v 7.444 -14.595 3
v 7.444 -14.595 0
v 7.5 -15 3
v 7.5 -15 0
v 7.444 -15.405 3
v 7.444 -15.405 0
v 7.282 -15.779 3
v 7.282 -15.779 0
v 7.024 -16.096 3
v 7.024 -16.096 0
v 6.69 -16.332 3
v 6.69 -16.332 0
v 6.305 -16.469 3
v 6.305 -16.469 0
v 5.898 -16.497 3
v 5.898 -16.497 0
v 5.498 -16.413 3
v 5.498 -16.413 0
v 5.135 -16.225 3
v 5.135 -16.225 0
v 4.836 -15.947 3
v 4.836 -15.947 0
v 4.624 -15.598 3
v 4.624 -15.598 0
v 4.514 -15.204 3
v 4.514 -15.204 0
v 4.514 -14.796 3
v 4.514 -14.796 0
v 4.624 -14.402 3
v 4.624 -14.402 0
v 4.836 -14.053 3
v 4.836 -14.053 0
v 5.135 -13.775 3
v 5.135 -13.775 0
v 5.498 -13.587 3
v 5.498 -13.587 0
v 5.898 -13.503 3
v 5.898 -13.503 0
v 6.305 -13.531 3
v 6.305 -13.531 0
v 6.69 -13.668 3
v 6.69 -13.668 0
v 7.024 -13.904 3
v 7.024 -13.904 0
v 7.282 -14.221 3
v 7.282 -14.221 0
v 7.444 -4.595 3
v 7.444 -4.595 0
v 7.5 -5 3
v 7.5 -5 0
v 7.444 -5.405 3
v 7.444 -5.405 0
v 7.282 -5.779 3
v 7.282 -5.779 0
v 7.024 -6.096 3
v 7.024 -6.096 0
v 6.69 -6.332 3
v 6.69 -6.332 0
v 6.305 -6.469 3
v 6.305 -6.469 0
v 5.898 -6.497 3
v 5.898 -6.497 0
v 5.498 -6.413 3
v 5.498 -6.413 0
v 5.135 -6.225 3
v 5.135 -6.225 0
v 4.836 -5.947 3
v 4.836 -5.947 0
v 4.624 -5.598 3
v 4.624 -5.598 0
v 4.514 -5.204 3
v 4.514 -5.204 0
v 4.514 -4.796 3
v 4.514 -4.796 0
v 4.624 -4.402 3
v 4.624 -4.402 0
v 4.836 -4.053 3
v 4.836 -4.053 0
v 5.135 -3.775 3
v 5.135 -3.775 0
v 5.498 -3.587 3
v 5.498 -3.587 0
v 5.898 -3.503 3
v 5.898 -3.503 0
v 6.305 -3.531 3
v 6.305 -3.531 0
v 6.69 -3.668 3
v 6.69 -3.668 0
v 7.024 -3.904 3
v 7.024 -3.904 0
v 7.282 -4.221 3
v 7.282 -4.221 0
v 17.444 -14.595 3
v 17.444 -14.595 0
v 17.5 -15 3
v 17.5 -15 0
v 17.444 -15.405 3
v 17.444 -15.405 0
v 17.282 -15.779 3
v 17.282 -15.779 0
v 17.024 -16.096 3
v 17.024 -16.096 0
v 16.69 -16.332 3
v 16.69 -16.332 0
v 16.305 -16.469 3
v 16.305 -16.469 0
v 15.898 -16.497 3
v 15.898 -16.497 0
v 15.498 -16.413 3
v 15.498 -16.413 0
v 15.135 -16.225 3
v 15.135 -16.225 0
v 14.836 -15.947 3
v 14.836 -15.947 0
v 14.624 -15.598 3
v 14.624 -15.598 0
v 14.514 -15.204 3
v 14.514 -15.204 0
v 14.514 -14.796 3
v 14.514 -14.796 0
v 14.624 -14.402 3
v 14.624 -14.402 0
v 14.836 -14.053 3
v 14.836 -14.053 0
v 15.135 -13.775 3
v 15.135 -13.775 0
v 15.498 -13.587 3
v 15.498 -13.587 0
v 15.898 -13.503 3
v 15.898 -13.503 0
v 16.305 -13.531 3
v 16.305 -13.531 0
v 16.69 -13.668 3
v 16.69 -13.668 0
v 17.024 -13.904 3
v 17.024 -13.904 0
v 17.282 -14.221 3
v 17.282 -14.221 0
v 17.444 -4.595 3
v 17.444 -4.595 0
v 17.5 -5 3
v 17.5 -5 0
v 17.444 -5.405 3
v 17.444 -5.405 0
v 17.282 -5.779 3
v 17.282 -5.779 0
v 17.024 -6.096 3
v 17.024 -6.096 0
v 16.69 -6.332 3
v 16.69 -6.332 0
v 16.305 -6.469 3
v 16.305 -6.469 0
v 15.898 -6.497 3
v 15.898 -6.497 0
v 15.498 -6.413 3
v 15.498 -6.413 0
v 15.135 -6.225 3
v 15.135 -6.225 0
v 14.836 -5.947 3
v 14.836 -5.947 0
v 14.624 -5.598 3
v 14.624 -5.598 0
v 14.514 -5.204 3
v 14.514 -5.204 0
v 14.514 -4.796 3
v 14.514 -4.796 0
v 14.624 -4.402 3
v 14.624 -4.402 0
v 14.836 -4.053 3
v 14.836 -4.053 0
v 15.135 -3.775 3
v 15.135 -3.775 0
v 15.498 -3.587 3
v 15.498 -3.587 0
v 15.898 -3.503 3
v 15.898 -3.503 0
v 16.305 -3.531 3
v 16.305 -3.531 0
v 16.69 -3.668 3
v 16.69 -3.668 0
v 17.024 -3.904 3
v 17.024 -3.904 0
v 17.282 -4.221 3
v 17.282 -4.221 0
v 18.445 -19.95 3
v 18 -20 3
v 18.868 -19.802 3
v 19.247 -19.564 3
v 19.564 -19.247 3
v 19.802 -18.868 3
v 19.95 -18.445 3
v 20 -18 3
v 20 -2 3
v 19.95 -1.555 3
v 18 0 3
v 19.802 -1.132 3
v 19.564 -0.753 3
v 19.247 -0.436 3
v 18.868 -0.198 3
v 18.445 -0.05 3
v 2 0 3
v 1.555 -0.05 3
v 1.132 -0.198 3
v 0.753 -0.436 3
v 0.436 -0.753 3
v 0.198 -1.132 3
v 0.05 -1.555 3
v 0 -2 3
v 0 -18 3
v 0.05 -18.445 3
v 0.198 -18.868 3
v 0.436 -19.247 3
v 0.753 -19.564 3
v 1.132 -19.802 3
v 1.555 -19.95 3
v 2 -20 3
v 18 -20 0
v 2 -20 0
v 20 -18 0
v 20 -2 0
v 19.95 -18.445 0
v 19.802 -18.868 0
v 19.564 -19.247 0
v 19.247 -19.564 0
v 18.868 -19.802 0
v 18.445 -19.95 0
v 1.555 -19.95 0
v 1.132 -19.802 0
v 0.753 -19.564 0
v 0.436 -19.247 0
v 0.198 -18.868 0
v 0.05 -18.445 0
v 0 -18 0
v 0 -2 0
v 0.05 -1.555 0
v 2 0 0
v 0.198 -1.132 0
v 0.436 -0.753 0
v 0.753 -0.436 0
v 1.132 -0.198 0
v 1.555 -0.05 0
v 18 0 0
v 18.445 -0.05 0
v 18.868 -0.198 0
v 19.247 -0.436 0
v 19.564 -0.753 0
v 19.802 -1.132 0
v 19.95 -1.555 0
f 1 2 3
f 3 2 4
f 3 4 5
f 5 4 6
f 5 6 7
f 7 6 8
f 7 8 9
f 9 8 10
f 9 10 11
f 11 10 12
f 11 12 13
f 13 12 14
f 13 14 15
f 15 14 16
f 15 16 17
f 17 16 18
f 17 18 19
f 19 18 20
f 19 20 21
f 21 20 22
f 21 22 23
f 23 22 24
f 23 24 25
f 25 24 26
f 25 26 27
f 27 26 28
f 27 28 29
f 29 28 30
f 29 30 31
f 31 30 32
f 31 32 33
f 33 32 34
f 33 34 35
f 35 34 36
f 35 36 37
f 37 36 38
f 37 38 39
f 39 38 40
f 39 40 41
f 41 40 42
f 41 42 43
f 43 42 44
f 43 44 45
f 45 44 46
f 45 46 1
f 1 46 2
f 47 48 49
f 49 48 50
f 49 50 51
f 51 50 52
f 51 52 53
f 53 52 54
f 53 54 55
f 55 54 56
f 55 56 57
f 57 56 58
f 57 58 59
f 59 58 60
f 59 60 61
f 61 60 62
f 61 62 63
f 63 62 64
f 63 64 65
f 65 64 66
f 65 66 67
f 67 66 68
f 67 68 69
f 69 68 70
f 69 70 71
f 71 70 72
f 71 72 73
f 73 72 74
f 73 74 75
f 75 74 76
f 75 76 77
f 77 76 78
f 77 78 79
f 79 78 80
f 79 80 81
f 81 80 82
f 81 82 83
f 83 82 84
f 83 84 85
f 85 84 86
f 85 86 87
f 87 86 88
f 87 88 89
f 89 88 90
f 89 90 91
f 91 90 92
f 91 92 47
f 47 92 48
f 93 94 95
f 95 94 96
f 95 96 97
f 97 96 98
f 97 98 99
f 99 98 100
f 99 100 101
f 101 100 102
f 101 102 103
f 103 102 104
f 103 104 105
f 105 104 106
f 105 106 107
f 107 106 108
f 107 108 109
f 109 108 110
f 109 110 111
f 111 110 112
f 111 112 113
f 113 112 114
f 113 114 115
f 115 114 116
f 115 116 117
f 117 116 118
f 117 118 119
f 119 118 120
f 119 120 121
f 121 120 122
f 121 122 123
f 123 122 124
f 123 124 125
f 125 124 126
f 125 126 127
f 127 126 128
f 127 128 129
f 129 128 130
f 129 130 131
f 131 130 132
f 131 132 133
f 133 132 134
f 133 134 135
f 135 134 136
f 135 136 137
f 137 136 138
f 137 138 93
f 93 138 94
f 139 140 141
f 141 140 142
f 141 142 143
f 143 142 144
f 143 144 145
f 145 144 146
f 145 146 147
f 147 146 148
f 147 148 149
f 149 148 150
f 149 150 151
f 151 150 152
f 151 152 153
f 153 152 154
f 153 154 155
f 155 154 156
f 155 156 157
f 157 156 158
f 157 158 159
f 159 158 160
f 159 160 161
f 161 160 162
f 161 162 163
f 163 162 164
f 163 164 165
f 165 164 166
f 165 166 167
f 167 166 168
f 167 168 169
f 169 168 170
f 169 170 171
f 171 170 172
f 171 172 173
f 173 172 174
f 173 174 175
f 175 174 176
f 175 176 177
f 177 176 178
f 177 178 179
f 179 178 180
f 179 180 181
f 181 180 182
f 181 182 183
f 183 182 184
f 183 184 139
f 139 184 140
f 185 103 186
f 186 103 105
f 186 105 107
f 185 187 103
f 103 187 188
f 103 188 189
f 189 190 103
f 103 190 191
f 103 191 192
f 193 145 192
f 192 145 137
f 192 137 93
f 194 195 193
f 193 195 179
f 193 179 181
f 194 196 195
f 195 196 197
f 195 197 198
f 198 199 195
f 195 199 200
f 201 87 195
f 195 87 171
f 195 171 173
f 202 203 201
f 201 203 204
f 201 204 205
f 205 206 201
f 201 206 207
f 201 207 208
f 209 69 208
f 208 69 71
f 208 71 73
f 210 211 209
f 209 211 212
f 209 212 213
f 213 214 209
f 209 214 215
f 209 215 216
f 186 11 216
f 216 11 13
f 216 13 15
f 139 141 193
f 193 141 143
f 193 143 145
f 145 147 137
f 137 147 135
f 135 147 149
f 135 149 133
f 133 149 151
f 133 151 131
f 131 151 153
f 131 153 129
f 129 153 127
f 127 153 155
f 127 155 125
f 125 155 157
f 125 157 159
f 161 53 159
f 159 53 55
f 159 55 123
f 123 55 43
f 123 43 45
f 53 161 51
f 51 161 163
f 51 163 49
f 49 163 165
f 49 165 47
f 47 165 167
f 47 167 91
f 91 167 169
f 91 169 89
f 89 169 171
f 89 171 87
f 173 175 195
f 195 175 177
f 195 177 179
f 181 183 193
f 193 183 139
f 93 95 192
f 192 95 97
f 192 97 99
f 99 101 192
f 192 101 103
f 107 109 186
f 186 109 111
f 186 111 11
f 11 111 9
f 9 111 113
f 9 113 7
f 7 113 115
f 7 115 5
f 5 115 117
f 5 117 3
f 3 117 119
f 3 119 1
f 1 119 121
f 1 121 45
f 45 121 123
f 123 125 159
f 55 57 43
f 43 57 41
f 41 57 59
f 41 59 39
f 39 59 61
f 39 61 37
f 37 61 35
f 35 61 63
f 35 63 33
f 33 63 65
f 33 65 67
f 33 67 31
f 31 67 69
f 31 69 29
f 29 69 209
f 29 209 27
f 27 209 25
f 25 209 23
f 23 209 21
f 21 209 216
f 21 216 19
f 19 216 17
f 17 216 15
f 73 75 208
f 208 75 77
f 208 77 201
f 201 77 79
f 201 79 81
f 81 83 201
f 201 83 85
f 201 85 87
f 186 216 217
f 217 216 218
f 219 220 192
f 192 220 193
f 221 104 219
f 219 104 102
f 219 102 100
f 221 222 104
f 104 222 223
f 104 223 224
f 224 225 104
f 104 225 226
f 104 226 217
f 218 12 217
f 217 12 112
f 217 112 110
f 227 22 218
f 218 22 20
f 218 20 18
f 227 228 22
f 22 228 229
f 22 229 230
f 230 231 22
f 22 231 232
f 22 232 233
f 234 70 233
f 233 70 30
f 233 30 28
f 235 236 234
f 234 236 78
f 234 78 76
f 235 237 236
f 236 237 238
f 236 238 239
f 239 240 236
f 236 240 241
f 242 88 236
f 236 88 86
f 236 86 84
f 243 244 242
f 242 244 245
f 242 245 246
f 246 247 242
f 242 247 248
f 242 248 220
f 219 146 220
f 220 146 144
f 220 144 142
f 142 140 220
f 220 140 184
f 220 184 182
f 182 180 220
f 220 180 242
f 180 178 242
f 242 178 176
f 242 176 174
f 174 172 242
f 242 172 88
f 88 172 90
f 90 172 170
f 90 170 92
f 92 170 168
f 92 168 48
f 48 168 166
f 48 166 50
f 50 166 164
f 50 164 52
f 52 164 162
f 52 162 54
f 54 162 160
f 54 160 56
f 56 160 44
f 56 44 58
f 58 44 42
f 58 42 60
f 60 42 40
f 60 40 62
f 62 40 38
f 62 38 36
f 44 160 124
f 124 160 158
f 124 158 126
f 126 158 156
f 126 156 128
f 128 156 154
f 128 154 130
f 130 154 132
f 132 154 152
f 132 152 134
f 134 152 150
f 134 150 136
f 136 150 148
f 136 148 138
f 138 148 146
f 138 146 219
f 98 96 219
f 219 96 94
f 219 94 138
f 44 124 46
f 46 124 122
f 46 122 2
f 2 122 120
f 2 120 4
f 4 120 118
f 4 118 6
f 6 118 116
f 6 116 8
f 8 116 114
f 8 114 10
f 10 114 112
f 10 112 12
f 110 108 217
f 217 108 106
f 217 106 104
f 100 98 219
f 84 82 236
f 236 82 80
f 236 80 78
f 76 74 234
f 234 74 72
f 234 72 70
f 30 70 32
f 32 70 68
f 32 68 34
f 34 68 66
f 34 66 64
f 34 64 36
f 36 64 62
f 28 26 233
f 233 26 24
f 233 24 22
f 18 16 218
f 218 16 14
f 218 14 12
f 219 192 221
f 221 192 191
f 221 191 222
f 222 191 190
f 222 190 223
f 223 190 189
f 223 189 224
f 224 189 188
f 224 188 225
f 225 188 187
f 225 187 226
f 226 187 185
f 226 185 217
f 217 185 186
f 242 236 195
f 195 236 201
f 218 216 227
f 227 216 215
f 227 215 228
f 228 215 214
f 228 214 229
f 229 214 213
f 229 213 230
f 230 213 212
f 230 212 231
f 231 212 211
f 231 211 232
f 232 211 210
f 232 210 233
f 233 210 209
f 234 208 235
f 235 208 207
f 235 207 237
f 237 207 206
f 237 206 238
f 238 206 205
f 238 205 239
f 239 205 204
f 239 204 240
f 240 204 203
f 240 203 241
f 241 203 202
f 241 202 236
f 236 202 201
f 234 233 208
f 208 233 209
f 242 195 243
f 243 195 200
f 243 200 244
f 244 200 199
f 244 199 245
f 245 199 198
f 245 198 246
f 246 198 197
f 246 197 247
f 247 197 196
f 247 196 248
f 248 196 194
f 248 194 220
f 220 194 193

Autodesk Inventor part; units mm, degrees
ref_plane "YZ Plane" through (0, 0, 0) normal (1, 0, 0) x (0, 1, 0)
ref_plane "XZ Plane" through (0, 0, 0) normal (0, 1, 0) x (-1, 0, 0)
ref_plane "XY Plane" through (0, 0, 0) normal (0, 0, 1) x (1, 0, 0)
ref_plane "Plano de trabajo5" through (0, 0, 0) normal (0, 0, 1) x (1, 0, 0)
sketch "Boceto2" plane through (0, 0, 0) normal (0, 0, 1) x (1, 0, 0)
  line L0 (0, 0) -> (20, 0)
  line L1 (20, 0) -> (20, -20)
  line L2 (20, -20) -> (0, -20)
  line L3 (0, -20) -> (0, 0)
  line L4 (0, -20) -> (6, -20)
  line L5 (6, -20) -> (6, -15)
  line L6 (6, -15) -> (6, -5)
  circle A0 centre (6, -15) radius 1.5
  circle A1 centre (6, -5) radius 1.5
  line L7 (20, -20) -> (20, -15)
  line L8 (20, -15) -> (16, -15)
  line L9 (16, -15) -> (16, -5)
  circle A2 centre (16, -15) radius 1.5
  circle A3 centre (16, -5) radius 1.5
  dimension "d17" = 20
  dimension "d18" = 20
  dimension "d19" = 6
  dimension "d20" = 5
  dimension "d21" = 10
  dimension "d22" = 3
  dimension "d23" = 3
  dimension "d24" = 5
  dimension "d25" = 4
  dimension "d26" = 10
  dimension "d27" = 3
  dimension "d28" = 3
extrude "Extrusión2" add sketch "Boceto2" along normal blind 3
fillet "Empalme2" radius 2 4 edges at (0, -20, 1.5) (0, 0, 1.5) (20, 0, 1.5) (20, -20, 1.5)
properties part number "Union 4"
